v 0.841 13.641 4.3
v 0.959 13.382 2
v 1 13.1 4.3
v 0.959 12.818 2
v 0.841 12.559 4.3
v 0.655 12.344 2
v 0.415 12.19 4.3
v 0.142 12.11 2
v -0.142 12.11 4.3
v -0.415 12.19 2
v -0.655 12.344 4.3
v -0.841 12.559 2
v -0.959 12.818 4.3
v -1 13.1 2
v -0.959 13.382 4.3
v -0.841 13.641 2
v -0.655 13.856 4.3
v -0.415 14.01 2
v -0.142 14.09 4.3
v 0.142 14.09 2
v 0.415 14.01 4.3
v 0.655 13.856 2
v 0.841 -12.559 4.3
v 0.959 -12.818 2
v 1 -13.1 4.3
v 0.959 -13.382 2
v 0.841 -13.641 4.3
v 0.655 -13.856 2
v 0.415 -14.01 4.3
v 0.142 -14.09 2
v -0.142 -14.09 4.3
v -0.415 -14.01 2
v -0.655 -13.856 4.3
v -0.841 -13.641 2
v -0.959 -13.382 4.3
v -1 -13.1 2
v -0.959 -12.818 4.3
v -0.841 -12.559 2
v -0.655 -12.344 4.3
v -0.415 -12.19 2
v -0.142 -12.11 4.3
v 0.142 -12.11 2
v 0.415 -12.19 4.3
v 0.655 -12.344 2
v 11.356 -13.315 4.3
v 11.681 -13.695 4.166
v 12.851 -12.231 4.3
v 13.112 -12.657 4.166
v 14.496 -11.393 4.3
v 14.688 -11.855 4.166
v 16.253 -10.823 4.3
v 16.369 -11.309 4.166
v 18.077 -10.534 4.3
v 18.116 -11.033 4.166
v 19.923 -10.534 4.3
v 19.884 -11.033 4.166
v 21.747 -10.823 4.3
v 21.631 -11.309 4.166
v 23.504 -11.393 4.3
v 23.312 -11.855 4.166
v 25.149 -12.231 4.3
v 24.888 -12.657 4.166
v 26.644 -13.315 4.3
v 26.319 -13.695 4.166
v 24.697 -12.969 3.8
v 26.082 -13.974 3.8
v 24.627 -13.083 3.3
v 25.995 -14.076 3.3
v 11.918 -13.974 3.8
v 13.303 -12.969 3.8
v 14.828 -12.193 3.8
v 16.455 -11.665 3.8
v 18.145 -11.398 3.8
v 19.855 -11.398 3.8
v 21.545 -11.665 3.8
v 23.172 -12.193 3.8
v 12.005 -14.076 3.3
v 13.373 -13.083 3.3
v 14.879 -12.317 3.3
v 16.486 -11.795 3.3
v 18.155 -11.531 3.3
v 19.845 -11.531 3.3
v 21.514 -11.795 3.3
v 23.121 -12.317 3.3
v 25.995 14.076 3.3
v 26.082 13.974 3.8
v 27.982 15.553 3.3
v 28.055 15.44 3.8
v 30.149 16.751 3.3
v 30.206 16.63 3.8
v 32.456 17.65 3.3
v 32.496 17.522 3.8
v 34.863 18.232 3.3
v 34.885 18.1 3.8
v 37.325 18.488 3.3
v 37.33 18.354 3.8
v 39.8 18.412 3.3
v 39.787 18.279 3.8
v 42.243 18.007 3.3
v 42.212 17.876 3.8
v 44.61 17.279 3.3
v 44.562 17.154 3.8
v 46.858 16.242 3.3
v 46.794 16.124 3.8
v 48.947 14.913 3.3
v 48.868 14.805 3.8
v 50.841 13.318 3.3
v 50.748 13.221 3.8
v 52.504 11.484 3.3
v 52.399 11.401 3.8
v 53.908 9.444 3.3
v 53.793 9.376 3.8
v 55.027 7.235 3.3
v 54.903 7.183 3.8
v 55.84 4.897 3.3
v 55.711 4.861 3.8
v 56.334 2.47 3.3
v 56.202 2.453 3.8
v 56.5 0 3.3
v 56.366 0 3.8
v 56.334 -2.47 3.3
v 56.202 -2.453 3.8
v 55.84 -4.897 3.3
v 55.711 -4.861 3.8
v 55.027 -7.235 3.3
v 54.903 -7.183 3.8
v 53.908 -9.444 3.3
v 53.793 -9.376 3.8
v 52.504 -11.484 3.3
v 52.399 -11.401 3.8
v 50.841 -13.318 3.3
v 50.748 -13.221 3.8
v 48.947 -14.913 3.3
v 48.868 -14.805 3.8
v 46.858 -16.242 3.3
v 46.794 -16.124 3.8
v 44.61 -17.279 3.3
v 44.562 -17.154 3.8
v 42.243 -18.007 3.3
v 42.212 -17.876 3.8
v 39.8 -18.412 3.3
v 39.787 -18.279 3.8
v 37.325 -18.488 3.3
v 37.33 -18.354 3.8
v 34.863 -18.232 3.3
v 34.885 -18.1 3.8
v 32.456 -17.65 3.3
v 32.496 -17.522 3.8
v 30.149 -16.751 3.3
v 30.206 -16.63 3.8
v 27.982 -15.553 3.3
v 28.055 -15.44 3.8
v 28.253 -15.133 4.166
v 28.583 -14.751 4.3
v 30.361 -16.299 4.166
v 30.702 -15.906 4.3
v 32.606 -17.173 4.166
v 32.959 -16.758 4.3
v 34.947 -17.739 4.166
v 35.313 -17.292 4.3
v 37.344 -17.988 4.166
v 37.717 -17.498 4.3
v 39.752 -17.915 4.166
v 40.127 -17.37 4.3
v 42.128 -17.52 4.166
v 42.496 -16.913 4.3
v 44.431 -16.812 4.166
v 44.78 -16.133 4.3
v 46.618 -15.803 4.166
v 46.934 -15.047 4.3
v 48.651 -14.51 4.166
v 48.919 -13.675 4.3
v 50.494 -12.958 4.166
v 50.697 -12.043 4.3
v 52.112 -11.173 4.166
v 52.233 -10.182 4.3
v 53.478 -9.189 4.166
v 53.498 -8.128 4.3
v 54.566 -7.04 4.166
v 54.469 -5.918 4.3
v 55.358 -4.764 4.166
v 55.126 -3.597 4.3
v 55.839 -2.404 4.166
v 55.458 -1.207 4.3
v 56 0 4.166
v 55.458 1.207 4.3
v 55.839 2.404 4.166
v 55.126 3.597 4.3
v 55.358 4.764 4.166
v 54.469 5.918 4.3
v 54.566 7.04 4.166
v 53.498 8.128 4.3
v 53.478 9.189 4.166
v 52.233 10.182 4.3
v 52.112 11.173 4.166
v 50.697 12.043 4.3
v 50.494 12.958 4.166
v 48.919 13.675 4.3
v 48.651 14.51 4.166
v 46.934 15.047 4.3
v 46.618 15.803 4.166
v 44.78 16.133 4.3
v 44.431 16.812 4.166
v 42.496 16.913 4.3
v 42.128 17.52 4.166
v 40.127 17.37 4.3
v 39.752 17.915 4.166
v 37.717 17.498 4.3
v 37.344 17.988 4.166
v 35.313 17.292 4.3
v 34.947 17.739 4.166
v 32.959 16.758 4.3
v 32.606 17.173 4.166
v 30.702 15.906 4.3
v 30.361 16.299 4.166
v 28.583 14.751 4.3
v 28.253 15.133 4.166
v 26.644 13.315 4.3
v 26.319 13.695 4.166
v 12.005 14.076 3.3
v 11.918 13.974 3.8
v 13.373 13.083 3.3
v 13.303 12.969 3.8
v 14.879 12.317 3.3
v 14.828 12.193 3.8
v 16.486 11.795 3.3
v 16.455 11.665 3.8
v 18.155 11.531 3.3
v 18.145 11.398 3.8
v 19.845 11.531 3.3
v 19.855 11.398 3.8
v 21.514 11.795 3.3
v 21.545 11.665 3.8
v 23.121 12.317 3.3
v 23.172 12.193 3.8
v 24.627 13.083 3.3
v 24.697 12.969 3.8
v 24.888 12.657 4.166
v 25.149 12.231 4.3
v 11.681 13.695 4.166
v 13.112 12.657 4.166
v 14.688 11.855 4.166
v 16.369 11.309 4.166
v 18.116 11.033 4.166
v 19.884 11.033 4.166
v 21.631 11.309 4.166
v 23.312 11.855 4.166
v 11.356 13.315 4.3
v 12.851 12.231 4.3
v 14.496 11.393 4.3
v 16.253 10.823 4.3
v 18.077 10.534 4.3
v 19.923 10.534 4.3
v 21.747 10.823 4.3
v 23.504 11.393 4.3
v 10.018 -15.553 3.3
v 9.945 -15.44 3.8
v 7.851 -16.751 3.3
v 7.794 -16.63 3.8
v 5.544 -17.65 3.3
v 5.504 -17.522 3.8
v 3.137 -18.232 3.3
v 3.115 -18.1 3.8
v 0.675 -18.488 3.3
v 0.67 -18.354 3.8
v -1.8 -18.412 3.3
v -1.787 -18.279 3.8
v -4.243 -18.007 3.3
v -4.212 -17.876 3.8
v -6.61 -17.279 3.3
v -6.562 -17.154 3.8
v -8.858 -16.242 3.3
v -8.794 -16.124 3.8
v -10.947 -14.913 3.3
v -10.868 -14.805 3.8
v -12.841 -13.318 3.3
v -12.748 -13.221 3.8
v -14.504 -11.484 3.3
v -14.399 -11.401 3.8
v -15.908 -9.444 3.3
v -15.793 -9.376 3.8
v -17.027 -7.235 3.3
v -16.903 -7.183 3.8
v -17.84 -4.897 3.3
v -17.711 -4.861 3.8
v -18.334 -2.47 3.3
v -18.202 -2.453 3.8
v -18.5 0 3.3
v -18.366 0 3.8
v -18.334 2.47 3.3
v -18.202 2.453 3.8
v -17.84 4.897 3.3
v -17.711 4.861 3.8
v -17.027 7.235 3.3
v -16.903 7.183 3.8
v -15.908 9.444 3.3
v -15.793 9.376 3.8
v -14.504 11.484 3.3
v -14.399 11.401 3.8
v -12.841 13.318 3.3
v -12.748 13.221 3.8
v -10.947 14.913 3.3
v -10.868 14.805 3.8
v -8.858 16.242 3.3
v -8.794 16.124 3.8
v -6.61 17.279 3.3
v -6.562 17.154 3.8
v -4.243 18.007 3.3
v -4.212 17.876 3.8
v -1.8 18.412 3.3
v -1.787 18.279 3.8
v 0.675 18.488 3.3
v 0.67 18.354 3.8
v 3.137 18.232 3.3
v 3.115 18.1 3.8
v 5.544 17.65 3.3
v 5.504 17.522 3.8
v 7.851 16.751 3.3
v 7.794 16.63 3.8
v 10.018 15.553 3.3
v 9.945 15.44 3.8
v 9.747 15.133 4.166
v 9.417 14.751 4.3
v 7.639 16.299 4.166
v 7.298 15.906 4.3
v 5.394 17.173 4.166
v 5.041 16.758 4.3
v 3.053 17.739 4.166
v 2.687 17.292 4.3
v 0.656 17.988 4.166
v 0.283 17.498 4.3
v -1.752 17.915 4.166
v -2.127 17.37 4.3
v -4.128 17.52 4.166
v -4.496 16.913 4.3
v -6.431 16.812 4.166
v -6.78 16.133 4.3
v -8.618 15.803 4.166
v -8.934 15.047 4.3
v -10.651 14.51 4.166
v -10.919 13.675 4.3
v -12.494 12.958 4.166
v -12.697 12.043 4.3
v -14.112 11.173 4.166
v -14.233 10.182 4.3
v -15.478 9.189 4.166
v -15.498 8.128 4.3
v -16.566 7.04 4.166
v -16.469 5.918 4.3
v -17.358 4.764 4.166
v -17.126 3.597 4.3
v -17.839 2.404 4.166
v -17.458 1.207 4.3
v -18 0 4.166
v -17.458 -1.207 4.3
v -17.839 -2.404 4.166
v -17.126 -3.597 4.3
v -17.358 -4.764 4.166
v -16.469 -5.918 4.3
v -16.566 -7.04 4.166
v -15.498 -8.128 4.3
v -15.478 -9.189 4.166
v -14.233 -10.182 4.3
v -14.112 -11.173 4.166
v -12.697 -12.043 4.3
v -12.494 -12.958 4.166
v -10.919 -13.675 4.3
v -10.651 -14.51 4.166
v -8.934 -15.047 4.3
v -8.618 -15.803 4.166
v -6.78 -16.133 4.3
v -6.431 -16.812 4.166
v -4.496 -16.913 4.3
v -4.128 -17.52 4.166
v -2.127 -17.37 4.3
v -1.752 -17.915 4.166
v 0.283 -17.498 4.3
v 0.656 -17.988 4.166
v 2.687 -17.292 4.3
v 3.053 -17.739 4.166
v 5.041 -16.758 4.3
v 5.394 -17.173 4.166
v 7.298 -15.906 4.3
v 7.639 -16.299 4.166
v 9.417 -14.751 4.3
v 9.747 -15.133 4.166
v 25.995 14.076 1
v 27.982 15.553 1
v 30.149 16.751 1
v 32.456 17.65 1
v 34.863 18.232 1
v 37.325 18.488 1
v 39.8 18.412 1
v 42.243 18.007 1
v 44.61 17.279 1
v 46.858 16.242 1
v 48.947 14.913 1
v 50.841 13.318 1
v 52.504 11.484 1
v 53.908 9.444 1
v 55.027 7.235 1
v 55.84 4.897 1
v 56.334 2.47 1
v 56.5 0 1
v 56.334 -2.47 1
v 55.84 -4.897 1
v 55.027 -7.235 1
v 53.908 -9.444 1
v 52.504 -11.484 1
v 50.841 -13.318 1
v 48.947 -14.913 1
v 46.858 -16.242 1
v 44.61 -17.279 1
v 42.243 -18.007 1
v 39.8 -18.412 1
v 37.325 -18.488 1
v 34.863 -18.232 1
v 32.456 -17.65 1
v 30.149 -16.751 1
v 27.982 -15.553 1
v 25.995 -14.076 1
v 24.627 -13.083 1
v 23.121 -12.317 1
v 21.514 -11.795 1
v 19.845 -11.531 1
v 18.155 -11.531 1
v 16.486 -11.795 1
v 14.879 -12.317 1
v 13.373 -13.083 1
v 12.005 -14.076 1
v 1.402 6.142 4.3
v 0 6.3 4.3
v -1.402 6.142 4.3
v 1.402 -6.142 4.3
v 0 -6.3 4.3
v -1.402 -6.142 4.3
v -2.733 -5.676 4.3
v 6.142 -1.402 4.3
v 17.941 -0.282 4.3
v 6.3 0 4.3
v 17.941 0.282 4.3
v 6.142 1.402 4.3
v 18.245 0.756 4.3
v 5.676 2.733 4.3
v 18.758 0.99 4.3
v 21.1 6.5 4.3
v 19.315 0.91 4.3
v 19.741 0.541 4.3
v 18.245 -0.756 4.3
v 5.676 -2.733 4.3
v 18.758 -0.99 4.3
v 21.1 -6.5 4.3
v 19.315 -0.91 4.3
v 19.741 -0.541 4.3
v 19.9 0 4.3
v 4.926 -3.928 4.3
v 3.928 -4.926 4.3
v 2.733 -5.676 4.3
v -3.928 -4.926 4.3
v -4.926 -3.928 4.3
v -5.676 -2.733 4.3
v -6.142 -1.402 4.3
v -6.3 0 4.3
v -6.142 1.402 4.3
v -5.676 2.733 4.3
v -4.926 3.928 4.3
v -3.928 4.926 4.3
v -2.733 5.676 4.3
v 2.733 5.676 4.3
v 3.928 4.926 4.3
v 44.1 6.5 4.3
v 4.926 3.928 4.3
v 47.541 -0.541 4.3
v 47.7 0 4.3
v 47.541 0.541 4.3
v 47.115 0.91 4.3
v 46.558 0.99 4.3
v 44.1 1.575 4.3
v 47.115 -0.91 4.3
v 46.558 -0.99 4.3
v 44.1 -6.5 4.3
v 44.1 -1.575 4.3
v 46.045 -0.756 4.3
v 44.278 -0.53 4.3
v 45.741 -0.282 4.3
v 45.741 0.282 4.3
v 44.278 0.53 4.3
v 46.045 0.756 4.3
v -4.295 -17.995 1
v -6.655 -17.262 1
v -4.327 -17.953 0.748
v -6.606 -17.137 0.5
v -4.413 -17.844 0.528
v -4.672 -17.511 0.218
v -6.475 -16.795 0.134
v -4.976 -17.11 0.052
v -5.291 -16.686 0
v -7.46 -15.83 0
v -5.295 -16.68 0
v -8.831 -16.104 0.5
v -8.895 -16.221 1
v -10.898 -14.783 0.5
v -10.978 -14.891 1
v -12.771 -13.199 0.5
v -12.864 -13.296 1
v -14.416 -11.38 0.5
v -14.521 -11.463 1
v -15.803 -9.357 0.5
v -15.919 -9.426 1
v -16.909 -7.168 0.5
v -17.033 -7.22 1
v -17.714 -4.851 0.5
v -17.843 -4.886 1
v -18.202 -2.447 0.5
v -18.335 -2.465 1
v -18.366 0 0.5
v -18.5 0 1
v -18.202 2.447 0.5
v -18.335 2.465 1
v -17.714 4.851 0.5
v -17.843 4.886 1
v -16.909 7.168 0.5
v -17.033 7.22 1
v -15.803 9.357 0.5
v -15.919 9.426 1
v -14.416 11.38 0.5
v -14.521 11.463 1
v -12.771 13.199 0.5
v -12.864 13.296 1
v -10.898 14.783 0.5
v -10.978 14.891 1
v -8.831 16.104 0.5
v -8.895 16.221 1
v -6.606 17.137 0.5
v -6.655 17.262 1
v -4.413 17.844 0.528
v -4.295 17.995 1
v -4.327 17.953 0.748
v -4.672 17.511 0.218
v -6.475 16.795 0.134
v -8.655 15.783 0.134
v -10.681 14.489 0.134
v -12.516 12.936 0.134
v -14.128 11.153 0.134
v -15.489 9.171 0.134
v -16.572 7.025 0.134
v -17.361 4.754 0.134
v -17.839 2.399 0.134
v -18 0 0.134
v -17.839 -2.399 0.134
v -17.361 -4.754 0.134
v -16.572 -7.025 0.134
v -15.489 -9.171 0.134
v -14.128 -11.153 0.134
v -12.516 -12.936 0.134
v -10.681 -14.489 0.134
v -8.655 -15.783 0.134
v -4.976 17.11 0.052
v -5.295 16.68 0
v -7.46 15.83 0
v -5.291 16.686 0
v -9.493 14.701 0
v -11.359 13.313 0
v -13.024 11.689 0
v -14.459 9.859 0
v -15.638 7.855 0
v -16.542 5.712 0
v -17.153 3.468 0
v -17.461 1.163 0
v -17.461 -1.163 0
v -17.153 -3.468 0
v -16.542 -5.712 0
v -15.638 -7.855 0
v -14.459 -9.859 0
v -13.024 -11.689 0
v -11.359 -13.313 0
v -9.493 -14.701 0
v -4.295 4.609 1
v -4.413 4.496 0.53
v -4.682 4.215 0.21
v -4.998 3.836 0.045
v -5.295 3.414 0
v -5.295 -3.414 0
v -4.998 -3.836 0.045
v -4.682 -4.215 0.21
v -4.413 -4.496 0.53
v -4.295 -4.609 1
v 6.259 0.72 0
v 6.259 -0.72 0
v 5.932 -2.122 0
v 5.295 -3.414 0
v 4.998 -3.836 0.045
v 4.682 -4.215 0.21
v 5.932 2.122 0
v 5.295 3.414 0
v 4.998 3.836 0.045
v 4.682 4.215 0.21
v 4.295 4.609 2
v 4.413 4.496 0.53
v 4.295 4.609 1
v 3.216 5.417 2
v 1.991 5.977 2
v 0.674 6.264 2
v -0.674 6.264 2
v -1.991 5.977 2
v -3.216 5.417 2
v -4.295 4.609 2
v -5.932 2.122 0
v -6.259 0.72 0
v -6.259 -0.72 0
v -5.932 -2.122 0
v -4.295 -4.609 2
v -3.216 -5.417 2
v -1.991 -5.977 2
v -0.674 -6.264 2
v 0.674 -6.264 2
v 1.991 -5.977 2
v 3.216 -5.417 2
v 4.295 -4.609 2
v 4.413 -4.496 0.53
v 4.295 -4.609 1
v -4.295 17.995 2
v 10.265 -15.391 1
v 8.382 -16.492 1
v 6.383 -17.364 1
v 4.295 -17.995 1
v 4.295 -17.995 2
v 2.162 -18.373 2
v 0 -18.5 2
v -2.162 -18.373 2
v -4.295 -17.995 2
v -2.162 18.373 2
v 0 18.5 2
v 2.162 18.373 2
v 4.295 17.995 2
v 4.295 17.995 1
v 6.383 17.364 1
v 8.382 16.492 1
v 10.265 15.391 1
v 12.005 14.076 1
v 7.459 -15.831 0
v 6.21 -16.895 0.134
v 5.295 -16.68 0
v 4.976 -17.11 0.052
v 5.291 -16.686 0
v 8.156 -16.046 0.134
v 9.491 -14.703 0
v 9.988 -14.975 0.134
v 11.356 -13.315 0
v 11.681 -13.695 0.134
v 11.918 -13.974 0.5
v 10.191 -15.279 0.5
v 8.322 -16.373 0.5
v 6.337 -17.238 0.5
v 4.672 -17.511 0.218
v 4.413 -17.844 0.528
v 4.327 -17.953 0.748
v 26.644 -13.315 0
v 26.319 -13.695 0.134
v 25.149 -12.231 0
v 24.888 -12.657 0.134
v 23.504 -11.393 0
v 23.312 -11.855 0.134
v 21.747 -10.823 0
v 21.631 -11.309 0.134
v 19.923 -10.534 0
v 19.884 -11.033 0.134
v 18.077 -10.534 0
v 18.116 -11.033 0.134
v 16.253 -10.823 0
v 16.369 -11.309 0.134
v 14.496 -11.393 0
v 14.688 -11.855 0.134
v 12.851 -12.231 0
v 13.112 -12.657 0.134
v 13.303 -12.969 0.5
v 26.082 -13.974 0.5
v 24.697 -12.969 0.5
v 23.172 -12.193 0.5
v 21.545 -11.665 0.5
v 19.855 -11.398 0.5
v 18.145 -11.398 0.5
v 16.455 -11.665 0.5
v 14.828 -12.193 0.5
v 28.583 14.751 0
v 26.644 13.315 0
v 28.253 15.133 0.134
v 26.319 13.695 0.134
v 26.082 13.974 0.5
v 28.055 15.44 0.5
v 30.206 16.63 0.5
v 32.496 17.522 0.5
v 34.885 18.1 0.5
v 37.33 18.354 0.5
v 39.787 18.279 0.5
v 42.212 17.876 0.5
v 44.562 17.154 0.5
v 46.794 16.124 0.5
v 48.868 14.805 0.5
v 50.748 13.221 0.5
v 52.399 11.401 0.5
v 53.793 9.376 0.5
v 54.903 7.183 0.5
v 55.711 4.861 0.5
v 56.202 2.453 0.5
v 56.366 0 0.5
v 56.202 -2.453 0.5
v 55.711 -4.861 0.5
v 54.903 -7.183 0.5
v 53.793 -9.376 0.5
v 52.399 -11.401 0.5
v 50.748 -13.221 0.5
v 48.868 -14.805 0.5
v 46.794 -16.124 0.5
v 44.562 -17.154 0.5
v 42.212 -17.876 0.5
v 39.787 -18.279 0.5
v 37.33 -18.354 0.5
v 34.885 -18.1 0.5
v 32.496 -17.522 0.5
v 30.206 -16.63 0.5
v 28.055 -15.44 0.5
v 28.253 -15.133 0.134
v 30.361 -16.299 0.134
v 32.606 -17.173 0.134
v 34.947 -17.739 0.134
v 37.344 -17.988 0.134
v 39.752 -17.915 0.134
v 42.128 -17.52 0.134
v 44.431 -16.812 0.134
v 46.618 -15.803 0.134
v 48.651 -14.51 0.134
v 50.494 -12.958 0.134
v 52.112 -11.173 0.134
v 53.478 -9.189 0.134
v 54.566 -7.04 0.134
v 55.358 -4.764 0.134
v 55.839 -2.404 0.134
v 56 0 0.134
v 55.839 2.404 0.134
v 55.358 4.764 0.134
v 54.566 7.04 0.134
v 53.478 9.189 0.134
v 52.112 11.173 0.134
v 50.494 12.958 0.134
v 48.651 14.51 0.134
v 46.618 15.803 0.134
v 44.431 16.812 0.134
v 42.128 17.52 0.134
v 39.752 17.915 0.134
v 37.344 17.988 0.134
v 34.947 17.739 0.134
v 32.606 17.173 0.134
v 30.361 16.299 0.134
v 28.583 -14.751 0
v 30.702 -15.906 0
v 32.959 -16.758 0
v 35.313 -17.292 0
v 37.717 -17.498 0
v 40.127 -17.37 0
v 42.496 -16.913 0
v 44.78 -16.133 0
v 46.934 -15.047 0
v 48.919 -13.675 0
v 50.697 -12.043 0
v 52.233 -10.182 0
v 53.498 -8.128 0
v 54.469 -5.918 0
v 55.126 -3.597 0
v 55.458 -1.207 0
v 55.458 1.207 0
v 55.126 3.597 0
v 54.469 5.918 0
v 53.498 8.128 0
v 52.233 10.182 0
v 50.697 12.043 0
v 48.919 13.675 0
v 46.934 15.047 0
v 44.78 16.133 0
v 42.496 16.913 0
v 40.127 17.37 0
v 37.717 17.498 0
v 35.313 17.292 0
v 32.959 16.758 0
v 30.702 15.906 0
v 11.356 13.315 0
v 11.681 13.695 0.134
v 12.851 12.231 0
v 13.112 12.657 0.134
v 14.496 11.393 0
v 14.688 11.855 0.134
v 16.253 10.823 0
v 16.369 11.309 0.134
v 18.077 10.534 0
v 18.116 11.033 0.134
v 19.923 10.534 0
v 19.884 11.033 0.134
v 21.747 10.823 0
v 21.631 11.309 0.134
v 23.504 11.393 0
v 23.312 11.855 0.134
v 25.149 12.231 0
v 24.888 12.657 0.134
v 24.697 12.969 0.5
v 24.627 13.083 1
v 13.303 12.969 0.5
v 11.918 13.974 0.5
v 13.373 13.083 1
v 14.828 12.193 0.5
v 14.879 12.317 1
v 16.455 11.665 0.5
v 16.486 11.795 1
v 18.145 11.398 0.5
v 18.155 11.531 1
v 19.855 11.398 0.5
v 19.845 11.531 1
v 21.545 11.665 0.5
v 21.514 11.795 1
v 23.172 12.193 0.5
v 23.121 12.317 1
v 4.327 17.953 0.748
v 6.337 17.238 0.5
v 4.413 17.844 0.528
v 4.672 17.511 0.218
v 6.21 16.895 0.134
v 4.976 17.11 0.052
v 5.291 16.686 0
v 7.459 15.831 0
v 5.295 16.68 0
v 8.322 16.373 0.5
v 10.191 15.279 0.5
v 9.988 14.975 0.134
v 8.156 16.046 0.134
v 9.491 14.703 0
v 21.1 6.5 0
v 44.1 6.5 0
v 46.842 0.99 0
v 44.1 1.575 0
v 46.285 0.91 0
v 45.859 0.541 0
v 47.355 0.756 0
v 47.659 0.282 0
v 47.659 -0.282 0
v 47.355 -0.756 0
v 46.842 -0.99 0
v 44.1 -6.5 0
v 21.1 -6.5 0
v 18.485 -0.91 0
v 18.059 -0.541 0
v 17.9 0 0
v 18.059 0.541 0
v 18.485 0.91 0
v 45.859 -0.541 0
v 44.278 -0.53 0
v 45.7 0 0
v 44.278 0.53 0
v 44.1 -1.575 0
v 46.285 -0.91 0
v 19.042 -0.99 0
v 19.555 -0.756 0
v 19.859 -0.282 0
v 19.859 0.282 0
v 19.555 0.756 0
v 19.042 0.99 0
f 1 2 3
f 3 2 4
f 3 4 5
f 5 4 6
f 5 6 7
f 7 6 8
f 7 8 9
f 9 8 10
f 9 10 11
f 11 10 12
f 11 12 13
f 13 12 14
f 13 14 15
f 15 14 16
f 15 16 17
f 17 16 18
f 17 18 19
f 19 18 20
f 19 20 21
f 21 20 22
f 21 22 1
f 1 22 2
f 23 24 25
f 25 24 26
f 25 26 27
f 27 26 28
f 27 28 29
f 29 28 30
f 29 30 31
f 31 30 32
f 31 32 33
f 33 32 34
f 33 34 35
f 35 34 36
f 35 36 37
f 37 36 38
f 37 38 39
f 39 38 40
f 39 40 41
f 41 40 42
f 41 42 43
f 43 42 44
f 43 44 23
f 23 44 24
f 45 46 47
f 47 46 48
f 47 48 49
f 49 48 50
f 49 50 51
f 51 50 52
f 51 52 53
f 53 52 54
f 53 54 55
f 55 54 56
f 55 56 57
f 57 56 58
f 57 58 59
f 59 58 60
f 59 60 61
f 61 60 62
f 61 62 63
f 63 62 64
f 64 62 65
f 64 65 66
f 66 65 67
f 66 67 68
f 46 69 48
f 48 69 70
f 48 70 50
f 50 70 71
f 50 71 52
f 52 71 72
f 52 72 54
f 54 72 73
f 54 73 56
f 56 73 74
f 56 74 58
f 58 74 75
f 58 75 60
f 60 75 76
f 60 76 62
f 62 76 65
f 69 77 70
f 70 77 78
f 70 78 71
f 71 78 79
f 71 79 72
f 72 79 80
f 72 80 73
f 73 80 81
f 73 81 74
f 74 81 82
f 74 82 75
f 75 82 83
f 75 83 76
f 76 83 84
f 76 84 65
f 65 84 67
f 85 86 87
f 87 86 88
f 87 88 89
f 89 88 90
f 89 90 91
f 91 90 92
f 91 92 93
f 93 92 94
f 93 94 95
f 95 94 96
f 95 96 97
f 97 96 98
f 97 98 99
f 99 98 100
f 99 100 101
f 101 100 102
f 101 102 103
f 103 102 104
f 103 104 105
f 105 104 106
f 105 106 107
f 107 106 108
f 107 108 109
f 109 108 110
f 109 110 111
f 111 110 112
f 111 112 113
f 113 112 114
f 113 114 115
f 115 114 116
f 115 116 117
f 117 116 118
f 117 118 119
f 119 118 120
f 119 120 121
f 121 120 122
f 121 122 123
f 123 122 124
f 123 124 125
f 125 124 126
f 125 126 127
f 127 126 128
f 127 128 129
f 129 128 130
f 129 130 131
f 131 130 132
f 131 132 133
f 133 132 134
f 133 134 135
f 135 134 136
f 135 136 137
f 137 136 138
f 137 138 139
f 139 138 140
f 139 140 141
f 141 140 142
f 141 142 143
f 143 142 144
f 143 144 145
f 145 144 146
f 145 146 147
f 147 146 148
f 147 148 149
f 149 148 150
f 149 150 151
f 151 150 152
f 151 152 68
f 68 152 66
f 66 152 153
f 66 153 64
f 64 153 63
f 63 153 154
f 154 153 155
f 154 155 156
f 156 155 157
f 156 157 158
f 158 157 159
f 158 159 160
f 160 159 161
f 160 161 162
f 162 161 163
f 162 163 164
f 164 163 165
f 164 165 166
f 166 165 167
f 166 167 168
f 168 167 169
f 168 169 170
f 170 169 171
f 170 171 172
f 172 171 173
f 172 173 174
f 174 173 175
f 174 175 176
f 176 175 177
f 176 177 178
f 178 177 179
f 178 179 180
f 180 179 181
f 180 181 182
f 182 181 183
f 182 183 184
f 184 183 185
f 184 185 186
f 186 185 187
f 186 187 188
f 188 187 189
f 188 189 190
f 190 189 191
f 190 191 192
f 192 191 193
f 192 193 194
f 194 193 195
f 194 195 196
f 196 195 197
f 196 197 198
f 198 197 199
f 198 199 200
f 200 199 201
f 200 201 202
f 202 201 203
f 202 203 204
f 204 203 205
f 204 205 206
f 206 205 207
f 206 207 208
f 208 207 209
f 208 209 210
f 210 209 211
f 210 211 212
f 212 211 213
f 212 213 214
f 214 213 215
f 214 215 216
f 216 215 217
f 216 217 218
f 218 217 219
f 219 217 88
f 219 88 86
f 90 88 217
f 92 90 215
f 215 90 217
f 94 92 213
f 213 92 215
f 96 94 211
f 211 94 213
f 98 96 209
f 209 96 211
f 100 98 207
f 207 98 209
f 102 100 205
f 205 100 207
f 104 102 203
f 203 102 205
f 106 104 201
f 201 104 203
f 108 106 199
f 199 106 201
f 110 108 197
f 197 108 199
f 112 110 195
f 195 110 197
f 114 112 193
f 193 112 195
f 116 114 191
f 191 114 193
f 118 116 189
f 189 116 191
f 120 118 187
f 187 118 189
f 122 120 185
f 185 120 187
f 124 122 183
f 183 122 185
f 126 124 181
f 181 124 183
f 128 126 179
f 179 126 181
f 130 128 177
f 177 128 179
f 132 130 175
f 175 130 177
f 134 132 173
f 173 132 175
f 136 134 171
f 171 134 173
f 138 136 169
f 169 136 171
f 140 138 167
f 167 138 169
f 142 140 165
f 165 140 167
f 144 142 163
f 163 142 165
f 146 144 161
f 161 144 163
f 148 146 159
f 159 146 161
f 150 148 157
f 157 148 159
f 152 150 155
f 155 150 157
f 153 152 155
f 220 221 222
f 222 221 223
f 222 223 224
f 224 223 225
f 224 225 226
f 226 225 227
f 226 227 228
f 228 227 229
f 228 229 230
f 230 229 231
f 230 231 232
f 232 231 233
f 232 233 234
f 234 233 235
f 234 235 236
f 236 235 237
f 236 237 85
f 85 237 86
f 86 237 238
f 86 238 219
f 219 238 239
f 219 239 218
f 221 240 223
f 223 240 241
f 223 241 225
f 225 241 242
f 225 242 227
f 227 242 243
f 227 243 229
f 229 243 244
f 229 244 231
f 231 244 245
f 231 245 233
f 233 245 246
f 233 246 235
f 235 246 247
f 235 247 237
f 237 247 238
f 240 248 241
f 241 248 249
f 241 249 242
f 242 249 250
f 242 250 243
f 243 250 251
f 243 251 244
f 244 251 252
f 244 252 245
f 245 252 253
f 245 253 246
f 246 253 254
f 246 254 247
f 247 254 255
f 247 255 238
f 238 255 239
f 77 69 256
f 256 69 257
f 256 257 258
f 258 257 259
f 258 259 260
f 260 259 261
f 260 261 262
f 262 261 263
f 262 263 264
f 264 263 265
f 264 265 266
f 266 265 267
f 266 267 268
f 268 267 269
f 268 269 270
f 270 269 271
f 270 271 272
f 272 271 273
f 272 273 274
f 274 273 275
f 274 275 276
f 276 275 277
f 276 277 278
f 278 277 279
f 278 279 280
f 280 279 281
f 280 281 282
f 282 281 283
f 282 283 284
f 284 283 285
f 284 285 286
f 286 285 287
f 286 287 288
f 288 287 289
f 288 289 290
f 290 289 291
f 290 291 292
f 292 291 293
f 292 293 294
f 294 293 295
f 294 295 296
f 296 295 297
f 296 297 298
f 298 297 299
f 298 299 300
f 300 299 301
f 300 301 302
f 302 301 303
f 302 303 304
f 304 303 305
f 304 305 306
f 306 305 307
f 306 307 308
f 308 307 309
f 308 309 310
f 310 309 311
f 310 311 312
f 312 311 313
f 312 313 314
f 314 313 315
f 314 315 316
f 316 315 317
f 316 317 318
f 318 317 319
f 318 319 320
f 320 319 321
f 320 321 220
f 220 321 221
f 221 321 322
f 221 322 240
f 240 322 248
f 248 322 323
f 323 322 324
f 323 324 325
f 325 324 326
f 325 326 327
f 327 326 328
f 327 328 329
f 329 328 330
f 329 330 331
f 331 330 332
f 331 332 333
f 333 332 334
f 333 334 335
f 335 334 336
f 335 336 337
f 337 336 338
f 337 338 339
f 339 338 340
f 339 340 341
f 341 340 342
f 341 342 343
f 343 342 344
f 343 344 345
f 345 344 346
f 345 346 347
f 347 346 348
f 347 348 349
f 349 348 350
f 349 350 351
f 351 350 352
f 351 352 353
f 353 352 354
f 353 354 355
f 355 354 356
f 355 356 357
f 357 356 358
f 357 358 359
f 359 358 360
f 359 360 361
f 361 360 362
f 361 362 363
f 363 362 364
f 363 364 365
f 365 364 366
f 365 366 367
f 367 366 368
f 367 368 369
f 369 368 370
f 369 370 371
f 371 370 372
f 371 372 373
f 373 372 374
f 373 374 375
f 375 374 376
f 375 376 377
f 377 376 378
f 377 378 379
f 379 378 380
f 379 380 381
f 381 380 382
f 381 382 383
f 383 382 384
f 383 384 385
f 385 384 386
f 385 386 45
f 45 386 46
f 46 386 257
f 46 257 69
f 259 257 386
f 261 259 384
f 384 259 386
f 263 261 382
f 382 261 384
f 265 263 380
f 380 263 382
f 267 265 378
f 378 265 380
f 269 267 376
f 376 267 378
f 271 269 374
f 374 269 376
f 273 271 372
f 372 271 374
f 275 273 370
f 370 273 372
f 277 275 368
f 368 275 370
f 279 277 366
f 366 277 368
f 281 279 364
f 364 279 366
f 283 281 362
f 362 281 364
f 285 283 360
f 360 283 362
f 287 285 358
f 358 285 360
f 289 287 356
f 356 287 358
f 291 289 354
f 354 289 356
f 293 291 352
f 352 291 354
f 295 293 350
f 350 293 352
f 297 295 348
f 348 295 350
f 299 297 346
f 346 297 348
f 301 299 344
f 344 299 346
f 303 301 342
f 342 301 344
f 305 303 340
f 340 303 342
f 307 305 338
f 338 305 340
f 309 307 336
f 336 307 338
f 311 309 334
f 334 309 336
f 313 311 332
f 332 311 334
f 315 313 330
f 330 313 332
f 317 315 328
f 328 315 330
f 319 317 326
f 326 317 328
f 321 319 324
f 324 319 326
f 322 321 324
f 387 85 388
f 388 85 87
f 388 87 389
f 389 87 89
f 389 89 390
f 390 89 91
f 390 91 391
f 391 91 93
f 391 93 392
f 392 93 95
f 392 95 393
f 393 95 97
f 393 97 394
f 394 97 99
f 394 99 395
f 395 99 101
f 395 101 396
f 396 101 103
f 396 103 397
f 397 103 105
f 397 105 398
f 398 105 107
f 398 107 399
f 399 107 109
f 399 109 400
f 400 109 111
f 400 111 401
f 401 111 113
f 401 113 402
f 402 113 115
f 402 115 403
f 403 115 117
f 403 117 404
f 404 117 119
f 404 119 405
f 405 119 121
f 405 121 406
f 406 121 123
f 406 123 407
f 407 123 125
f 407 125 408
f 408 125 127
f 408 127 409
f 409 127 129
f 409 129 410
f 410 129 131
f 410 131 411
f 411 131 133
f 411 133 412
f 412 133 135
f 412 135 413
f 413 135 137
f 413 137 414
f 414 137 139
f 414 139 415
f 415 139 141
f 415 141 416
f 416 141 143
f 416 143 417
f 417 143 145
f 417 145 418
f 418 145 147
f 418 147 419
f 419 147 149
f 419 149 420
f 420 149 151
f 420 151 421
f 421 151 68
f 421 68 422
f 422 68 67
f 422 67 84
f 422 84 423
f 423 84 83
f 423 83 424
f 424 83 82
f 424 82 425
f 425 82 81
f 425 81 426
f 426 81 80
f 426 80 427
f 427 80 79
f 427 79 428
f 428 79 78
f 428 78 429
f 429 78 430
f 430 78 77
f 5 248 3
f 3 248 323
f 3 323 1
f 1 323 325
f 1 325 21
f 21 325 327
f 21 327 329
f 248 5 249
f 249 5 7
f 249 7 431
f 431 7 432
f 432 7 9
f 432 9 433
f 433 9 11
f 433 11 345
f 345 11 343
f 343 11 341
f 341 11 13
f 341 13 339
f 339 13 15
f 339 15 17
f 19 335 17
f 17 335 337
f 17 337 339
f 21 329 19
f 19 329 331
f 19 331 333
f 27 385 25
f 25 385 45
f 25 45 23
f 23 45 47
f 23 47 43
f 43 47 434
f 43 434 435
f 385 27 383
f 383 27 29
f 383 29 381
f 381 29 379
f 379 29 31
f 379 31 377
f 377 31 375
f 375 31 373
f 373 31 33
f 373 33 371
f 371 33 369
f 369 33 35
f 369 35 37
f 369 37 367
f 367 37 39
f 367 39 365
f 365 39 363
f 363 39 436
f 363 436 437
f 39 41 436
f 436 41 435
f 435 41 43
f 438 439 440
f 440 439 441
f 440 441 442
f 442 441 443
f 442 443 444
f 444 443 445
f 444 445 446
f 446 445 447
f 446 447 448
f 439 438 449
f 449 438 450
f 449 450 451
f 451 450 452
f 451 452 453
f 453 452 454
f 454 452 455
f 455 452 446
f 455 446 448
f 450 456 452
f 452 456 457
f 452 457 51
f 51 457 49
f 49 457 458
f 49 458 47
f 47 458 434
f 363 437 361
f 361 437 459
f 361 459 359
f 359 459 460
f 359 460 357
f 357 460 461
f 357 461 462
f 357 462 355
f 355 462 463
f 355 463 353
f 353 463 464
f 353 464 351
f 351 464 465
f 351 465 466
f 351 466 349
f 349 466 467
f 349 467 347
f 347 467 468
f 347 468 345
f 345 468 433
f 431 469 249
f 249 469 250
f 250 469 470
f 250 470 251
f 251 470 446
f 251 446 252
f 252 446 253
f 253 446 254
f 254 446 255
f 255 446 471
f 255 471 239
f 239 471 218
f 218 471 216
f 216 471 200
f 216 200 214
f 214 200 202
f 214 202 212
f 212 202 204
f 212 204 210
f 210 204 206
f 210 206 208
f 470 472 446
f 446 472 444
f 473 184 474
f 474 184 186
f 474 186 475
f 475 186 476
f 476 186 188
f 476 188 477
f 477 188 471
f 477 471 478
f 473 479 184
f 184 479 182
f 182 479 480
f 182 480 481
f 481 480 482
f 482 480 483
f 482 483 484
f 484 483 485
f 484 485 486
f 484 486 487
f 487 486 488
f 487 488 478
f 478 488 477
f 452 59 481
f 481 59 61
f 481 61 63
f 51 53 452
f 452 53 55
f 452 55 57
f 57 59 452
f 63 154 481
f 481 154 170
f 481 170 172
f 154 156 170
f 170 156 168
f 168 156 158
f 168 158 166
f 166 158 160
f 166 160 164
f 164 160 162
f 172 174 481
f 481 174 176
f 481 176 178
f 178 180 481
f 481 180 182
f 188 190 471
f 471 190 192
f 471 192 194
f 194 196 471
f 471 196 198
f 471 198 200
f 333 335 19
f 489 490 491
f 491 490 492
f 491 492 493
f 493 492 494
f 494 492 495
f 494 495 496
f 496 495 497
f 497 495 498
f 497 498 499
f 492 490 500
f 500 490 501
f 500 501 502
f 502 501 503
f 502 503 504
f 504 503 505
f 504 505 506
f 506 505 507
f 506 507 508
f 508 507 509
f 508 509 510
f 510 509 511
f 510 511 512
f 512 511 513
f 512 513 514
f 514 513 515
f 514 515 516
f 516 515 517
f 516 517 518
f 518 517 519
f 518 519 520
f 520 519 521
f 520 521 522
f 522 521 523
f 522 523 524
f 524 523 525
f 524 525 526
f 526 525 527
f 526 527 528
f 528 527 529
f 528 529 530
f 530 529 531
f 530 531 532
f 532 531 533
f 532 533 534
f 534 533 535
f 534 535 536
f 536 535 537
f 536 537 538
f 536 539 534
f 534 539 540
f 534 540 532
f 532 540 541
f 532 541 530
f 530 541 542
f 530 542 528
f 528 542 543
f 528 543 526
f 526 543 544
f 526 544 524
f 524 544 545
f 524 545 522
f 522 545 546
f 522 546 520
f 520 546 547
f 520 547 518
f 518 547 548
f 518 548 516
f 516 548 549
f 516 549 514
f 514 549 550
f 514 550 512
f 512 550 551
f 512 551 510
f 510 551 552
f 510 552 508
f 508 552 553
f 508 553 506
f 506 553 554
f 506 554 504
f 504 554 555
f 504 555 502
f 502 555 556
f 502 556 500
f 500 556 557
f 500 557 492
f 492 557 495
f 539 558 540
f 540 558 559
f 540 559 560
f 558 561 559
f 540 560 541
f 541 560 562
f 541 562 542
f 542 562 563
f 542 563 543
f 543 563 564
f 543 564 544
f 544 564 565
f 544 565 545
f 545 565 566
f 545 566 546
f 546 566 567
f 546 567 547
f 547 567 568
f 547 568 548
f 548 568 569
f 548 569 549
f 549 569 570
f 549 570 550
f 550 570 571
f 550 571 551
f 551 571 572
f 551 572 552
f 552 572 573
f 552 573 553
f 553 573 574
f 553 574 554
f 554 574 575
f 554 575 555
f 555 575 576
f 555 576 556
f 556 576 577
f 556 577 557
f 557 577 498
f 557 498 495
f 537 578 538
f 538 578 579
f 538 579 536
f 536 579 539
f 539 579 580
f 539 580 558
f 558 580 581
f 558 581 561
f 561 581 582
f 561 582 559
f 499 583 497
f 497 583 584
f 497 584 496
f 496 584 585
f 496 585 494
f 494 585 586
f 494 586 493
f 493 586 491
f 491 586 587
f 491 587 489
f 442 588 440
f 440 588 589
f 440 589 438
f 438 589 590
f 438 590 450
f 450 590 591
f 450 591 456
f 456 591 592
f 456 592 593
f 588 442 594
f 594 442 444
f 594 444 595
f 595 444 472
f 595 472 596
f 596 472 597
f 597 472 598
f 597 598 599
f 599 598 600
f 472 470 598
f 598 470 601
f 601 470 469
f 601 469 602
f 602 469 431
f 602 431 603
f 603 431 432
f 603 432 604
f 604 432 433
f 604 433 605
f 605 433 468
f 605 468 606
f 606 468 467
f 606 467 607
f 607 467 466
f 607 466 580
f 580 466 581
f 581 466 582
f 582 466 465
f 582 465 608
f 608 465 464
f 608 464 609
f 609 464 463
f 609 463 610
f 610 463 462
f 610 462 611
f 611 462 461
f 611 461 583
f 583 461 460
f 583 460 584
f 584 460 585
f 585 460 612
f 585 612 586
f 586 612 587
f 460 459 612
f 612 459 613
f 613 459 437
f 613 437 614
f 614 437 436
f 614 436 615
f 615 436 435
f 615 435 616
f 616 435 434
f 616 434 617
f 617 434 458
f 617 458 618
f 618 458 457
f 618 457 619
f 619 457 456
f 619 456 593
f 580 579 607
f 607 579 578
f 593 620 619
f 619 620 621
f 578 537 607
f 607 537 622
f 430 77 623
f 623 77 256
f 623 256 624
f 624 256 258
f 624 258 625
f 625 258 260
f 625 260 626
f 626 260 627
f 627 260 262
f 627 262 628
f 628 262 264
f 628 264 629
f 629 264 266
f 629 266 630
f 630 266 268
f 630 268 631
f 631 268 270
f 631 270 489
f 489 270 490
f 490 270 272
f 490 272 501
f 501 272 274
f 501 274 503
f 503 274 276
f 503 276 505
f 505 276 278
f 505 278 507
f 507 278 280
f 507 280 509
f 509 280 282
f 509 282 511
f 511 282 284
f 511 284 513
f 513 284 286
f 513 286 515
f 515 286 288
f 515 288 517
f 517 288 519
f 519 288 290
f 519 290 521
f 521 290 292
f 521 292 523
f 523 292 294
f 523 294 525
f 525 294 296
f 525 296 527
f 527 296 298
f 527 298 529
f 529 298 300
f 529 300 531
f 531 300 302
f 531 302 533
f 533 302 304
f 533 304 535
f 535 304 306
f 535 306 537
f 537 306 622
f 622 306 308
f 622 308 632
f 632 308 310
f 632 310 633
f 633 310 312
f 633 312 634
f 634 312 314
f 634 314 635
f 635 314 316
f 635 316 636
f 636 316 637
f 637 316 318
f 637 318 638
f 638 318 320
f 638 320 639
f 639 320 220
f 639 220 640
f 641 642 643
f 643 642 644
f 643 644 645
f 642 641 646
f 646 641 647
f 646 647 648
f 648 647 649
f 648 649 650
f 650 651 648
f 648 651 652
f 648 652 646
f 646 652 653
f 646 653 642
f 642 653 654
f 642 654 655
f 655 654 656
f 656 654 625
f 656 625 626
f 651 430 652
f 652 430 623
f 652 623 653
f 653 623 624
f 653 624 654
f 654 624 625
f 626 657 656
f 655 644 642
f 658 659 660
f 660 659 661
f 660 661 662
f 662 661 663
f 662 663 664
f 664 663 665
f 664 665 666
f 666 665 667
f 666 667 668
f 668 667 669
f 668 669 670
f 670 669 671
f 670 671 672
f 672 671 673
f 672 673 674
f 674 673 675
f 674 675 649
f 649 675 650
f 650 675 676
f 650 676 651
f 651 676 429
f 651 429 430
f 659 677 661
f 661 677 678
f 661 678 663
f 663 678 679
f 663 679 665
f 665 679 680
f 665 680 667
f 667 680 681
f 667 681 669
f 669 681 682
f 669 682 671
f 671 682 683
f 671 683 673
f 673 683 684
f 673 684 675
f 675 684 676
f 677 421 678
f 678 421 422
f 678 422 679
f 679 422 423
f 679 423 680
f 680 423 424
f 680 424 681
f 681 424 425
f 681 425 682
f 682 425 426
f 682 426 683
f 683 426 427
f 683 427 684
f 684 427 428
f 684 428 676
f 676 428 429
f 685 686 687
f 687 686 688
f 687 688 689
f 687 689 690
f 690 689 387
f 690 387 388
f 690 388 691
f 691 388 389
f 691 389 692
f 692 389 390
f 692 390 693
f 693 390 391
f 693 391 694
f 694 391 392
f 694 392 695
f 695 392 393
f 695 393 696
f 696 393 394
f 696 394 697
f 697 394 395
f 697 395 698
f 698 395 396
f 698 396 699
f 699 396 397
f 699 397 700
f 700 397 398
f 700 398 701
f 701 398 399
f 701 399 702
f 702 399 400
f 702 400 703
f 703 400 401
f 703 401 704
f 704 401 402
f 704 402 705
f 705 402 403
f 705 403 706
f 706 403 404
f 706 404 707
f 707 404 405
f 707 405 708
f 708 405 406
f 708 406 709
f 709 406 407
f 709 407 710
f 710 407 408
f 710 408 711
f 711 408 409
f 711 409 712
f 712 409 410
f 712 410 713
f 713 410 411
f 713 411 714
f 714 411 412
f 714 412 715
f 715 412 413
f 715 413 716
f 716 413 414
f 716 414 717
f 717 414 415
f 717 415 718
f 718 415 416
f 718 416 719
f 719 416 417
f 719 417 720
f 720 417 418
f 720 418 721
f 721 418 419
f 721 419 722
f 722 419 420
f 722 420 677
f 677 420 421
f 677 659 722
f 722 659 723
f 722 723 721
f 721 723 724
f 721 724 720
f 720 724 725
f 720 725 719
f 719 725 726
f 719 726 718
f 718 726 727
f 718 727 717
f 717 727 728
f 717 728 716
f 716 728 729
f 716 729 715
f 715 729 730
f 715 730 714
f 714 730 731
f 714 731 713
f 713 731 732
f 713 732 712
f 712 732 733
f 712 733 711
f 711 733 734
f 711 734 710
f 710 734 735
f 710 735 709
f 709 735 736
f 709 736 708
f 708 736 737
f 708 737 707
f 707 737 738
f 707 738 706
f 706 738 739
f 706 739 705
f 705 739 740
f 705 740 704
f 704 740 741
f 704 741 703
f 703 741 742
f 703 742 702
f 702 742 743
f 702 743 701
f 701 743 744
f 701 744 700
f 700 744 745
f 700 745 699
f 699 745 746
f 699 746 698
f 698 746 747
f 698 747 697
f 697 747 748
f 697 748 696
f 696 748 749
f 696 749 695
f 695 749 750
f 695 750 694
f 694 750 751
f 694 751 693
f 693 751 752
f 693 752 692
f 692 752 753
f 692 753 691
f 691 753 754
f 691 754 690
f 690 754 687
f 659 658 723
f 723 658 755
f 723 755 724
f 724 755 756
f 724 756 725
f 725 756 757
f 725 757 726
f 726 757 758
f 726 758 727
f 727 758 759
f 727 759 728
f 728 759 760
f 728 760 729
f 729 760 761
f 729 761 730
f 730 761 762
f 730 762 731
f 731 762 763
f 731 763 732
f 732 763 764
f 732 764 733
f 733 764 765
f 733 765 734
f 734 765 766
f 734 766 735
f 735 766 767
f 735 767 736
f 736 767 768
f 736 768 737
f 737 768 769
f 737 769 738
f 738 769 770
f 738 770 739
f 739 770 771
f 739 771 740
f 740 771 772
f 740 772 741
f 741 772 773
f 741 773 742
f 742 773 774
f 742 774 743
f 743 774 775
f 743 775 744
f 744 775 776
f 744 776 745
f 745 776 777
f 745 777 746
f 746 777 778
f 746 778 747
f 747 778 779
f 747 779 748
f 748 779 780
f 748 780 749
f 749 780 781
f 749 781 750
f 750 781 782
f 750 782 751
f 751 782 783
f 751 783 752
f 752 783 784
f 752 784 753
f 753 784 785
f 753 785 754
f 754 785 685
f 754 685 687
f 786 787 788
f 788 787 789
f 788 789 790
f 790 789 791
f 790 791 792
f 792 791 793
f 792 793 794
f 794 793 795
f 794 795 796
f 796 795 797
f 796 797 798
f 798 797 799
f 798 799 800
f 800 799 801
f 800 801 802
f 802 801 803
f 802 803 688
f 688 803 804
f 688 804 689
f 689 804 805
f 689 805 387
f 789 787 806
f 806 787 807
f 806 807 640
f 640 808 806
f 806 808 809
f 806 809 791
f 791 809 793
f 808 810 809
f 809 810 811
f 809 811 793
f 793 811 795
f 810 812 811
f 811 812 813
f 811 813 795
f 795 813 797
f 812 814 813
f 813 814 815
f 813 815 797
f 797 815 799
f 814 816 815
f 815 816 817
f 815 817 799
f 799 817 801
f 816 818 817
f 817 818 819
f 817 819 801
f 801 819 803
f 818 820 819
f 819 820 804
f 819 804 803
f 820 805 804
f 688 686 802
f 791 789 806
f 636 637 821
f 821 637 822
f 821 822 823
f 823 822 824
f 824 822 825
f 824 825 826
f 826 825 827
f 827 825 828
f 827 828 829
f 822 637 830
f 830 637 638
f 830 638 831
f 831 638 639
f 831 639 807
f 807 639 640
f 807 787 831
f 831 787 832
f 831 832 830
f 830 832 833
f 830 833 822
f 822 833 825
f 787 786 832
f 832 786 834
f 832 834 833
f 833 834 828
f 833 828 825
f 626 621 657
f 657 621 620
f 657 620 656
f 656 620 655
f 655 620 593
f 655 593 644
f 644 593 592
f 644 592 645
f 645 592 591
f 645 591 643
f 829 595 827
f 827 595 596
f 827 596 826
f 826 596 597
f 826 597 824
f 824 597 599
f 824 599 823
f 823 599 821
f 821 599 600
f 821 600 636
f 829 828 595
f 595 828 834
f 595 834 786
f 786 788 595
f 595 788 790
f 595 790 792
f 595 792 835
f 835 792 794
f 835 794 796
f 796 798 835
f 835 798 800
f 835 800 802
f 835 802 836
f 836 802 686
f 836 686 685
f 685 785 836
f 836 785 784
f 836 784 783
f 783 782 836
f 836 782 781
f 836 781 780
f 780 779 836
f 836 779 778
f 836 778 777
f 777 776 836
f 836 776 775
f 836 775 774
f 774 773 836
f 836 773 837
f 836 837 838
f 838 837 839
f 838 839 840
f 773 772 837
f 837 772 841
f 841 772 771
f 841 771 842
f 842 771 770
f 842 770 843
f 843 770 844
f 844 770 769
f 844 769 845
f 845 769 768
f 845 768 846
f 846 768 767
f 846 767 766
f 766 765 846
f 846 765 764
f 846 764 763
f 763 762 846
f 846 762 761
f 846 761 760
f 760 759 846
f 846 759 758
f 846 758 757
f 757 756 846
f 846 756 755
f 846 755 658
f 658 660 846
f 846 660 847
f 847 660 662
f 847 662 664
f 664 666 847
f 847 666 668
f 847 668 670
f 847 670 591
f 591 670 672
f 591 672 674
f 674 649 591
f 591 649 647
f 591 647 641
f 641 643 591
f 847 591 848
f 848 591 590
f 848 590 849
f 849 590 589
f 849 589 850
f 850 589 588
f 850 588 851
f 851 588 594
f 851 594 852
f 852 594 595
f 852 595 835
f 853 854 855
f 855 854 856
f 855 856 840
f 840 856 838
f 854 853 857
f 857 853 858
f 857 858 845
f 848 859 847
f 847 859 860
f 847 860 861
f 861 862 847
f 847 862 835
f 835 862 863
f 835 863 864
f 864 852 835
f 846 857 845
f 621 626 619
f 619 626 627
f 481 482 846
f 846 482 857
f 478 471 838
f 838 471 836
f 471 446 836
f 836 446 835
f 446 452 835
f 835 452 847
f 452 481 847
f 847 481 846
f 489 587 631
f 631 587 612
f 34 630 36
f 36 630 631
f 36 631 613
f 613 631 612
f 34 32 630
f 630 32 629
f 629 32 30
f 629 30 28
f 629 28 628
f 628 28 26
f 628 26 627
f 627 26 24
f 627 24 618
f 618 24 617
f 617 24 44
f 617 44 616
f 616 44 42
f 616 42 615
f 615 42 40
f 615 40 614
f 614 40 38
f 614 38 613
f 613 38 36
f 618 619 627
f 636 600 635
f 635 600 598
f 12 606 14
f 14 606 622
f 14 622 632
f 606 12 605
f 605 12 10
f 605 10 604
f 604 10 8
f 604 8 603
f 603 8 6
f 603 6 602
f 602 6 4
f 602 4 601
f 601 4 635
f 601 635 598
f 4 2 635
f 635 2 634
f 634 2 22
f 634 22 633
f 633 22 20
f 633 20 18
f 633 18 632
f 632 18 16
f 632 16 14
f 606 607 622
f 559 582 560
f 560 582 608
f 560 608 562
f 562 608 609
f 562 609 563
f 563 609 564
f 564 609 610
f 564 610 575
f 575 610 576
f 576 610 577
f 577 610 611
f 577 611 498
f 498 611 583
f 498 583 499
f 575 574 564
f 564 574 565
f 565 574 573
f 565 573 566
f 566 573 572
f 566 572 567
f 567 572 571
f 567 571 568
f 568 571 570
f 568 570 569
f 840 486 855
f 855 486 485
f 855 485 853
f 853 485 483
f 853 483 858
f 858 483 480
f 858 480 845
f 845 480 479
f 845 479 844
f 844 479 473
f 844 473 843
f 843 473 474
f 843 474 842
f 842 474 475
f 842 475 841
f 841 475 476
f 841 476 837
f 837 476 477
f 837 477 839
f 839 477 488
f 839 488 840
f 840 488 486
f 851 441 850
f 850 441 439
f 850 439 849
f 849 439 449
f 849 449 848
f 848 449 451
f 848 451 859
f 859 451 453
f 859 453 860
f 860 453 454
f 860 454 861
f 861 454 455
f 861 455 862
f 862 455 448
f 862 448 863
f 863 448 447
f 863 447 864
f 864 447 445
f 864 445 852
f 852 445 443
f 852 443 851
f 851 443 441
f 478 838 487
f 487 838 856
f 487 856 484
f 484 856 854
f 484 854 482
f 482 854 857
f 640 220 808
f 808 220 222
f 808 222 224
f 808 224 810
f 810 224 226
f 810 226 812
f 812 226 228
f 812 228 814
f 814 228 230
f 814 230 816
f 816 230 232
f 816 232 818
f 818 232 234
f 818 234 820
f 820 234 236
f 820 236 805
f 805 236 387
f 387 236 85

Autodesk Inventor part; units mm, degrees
ref_plane "YZ Plane" through (0, 0, 0) normal (1, 0, 0) x (0, 1, 0)
ref_plane "XZ Plane" through (0, 0, 0) normal (0, 1, 0) x (-1, 0, 0)
ref_plane "XY Plane" through (0, 0, 0) normal (0, 0, 1) x (1, 0, 0)
sketch "Sketch2" plane through (0, 0, 0) normal (0, 0, 1) x (1, 0, 0)
  circle A0 centre (0, 0) radius 18.5
  circle A1 centre (38, 0) radius 6.3
  circle A2 centre (0, 0) radius 6.3
  circle A3 centre (38, 0) radius 18.5
  line L0 (-1.1534, 0) -> (34.5511, 0)
  arc A4 (12.005, 14.0759) -> (25.995, 14.0759) centre (19, 22.2775) ccw
  arc A5 (25.995, -14.0759) -> (12.005, -14.0759) centre (19, -22.2775) ccw
  line L1 (1.1428, -18.5) -> (0, -18.5)
  line L2 (1.1428, 18.5) -> (0, 18.5)
  point P0 (38, 18.5)
  point P1 (38, -18.5)
  point P2 (18.5, 0)
  dimension "d0" = 37
  dimension "d19" = 12.6
  dimension "d20" = 37
  dimension "d26" = 38
extrude "Extrusion1" add sketch "Sketch2" along normal blind 4.3
sketch "Sketch3" plane through (0, 0, 4.3) normal (0, 0, 1) x (1, 0, 0)
  circle A0 centre (38, 0) radius 6.3 projected
  line L0 (38, 0) -> (38, 2.8384)
  point P0 (0, 0)
  point P1 (46.7, 0)
  point P2 (18.9, 0)
  dimension "d7" = 27.8
  dimension "d16" = 8.7
hole "Hole1" at (46.7, 0, 4.3) at (18.9, 0, 4.3) direction (0, 0, -1) diameter 2 depth 7
sketch "Sketch4" plane through (0, 0, 0) normal (0, 0, -1) x (-1, 0, 0)
  circle A0 centre (0, 0) radius 6.3 projected
  line L0 (0, 3.334) -> (0, -2.474)
  line L1 (-2.132, 0) -> (2.0257, 0)
  line L2 (-4.2951, 19.0635) -> (4.2951, 19.0635)
  line L3 (4.2951, 19.0635) -> (4.2951, -19.0635)
  line L4 (4.2951, -19.0635) -> (-4.2951, -19.0635)
  line L5 (-4.2951, -19.0635) -> (-4.2951, 19.0635)
  point P0 (4.2951, -4.609)
  point P1 (-4.2951, -4.609)
  point P2 (-4.2951, 4.609)
  point P3 (4.2951, 4.609)
extrude "Extrusion2" cut sketch "Sketch4" against normal blind 2 contours A0 L5 L2 L3 | L3 L4 L5 A0
sketch "Sketch5" plane through (0, 0, 4.3) normal (0, 0, 1) x (1, 0, 0)
  circle A0 centre (38, 0) radius 6.3 projected
  line L0 (38, 0) -> (38, 11.0593)
  line L1 (38, 0) -> (42.2148, 0)
  line L2 (21.1, 6.5) -> (44.1, 6.5)
  line L3 (44.1, 6.5) -> (44.1, -6.5)
  line L4 (44.1, -6.5) -> (21.1, -6.5)
  line L5 (21.1, -6.5) -> (21.1, 6.5)
  circle A1 centre (46.7, 0) radius 1 projected
  point P0 (0, 0)
  point P1 (44.1, -1.5748)
  point P2 (44.1, 1.5748)
  dimension "d21" = 13
  dimension "d22" = 23
  dimension "d23" = 2.6
extrude "Extrusion3" cut sketch "Sketch5" against normal blind 4.3 contours A0 L0 L2 L3 | L3 L4 L5 L2 L0 A0
fillet "Fillet1" radius 1 14 edges at (19, 11.498, 0) (8.3822, 16.4921, 0) (19, -11.498, 0) (8.3822, -16.4921, 0) (56.5, 0, 0) (-18.5, 0, 0) (19, -11.498, 4.3) (56.5, 0, 4.3) (19, 11.498, 4.3) (-18.5, 0, 4.3) (4.2951, 11.3017, 0) (4.2951, -11.3017, 0) (-4.2951, 11.3017, 0) (-4.2951, -11.3017, 0)
sketch "Sketch7" plane through (0, 0, 2) normal (0, 0, -1) x (-1, 0, 0)
  circle A0 centre (0, 0) radius 6.3 projected
  line L0 (0, 0) -> (0, 23.1769)
  line L1 (0, 0) -> (3.1147, 0)
  point P0 (0, 13.1)
  point P1 (0, -13.1)
  dimension "d28" = 26.2
hole "Hole2" at (0, 13.1, 2) at (0, -13.1, 2) direction (0, 0, 1) diameter 2 depth 2.3
properties part number "firsarm" material "Polystyrene"
